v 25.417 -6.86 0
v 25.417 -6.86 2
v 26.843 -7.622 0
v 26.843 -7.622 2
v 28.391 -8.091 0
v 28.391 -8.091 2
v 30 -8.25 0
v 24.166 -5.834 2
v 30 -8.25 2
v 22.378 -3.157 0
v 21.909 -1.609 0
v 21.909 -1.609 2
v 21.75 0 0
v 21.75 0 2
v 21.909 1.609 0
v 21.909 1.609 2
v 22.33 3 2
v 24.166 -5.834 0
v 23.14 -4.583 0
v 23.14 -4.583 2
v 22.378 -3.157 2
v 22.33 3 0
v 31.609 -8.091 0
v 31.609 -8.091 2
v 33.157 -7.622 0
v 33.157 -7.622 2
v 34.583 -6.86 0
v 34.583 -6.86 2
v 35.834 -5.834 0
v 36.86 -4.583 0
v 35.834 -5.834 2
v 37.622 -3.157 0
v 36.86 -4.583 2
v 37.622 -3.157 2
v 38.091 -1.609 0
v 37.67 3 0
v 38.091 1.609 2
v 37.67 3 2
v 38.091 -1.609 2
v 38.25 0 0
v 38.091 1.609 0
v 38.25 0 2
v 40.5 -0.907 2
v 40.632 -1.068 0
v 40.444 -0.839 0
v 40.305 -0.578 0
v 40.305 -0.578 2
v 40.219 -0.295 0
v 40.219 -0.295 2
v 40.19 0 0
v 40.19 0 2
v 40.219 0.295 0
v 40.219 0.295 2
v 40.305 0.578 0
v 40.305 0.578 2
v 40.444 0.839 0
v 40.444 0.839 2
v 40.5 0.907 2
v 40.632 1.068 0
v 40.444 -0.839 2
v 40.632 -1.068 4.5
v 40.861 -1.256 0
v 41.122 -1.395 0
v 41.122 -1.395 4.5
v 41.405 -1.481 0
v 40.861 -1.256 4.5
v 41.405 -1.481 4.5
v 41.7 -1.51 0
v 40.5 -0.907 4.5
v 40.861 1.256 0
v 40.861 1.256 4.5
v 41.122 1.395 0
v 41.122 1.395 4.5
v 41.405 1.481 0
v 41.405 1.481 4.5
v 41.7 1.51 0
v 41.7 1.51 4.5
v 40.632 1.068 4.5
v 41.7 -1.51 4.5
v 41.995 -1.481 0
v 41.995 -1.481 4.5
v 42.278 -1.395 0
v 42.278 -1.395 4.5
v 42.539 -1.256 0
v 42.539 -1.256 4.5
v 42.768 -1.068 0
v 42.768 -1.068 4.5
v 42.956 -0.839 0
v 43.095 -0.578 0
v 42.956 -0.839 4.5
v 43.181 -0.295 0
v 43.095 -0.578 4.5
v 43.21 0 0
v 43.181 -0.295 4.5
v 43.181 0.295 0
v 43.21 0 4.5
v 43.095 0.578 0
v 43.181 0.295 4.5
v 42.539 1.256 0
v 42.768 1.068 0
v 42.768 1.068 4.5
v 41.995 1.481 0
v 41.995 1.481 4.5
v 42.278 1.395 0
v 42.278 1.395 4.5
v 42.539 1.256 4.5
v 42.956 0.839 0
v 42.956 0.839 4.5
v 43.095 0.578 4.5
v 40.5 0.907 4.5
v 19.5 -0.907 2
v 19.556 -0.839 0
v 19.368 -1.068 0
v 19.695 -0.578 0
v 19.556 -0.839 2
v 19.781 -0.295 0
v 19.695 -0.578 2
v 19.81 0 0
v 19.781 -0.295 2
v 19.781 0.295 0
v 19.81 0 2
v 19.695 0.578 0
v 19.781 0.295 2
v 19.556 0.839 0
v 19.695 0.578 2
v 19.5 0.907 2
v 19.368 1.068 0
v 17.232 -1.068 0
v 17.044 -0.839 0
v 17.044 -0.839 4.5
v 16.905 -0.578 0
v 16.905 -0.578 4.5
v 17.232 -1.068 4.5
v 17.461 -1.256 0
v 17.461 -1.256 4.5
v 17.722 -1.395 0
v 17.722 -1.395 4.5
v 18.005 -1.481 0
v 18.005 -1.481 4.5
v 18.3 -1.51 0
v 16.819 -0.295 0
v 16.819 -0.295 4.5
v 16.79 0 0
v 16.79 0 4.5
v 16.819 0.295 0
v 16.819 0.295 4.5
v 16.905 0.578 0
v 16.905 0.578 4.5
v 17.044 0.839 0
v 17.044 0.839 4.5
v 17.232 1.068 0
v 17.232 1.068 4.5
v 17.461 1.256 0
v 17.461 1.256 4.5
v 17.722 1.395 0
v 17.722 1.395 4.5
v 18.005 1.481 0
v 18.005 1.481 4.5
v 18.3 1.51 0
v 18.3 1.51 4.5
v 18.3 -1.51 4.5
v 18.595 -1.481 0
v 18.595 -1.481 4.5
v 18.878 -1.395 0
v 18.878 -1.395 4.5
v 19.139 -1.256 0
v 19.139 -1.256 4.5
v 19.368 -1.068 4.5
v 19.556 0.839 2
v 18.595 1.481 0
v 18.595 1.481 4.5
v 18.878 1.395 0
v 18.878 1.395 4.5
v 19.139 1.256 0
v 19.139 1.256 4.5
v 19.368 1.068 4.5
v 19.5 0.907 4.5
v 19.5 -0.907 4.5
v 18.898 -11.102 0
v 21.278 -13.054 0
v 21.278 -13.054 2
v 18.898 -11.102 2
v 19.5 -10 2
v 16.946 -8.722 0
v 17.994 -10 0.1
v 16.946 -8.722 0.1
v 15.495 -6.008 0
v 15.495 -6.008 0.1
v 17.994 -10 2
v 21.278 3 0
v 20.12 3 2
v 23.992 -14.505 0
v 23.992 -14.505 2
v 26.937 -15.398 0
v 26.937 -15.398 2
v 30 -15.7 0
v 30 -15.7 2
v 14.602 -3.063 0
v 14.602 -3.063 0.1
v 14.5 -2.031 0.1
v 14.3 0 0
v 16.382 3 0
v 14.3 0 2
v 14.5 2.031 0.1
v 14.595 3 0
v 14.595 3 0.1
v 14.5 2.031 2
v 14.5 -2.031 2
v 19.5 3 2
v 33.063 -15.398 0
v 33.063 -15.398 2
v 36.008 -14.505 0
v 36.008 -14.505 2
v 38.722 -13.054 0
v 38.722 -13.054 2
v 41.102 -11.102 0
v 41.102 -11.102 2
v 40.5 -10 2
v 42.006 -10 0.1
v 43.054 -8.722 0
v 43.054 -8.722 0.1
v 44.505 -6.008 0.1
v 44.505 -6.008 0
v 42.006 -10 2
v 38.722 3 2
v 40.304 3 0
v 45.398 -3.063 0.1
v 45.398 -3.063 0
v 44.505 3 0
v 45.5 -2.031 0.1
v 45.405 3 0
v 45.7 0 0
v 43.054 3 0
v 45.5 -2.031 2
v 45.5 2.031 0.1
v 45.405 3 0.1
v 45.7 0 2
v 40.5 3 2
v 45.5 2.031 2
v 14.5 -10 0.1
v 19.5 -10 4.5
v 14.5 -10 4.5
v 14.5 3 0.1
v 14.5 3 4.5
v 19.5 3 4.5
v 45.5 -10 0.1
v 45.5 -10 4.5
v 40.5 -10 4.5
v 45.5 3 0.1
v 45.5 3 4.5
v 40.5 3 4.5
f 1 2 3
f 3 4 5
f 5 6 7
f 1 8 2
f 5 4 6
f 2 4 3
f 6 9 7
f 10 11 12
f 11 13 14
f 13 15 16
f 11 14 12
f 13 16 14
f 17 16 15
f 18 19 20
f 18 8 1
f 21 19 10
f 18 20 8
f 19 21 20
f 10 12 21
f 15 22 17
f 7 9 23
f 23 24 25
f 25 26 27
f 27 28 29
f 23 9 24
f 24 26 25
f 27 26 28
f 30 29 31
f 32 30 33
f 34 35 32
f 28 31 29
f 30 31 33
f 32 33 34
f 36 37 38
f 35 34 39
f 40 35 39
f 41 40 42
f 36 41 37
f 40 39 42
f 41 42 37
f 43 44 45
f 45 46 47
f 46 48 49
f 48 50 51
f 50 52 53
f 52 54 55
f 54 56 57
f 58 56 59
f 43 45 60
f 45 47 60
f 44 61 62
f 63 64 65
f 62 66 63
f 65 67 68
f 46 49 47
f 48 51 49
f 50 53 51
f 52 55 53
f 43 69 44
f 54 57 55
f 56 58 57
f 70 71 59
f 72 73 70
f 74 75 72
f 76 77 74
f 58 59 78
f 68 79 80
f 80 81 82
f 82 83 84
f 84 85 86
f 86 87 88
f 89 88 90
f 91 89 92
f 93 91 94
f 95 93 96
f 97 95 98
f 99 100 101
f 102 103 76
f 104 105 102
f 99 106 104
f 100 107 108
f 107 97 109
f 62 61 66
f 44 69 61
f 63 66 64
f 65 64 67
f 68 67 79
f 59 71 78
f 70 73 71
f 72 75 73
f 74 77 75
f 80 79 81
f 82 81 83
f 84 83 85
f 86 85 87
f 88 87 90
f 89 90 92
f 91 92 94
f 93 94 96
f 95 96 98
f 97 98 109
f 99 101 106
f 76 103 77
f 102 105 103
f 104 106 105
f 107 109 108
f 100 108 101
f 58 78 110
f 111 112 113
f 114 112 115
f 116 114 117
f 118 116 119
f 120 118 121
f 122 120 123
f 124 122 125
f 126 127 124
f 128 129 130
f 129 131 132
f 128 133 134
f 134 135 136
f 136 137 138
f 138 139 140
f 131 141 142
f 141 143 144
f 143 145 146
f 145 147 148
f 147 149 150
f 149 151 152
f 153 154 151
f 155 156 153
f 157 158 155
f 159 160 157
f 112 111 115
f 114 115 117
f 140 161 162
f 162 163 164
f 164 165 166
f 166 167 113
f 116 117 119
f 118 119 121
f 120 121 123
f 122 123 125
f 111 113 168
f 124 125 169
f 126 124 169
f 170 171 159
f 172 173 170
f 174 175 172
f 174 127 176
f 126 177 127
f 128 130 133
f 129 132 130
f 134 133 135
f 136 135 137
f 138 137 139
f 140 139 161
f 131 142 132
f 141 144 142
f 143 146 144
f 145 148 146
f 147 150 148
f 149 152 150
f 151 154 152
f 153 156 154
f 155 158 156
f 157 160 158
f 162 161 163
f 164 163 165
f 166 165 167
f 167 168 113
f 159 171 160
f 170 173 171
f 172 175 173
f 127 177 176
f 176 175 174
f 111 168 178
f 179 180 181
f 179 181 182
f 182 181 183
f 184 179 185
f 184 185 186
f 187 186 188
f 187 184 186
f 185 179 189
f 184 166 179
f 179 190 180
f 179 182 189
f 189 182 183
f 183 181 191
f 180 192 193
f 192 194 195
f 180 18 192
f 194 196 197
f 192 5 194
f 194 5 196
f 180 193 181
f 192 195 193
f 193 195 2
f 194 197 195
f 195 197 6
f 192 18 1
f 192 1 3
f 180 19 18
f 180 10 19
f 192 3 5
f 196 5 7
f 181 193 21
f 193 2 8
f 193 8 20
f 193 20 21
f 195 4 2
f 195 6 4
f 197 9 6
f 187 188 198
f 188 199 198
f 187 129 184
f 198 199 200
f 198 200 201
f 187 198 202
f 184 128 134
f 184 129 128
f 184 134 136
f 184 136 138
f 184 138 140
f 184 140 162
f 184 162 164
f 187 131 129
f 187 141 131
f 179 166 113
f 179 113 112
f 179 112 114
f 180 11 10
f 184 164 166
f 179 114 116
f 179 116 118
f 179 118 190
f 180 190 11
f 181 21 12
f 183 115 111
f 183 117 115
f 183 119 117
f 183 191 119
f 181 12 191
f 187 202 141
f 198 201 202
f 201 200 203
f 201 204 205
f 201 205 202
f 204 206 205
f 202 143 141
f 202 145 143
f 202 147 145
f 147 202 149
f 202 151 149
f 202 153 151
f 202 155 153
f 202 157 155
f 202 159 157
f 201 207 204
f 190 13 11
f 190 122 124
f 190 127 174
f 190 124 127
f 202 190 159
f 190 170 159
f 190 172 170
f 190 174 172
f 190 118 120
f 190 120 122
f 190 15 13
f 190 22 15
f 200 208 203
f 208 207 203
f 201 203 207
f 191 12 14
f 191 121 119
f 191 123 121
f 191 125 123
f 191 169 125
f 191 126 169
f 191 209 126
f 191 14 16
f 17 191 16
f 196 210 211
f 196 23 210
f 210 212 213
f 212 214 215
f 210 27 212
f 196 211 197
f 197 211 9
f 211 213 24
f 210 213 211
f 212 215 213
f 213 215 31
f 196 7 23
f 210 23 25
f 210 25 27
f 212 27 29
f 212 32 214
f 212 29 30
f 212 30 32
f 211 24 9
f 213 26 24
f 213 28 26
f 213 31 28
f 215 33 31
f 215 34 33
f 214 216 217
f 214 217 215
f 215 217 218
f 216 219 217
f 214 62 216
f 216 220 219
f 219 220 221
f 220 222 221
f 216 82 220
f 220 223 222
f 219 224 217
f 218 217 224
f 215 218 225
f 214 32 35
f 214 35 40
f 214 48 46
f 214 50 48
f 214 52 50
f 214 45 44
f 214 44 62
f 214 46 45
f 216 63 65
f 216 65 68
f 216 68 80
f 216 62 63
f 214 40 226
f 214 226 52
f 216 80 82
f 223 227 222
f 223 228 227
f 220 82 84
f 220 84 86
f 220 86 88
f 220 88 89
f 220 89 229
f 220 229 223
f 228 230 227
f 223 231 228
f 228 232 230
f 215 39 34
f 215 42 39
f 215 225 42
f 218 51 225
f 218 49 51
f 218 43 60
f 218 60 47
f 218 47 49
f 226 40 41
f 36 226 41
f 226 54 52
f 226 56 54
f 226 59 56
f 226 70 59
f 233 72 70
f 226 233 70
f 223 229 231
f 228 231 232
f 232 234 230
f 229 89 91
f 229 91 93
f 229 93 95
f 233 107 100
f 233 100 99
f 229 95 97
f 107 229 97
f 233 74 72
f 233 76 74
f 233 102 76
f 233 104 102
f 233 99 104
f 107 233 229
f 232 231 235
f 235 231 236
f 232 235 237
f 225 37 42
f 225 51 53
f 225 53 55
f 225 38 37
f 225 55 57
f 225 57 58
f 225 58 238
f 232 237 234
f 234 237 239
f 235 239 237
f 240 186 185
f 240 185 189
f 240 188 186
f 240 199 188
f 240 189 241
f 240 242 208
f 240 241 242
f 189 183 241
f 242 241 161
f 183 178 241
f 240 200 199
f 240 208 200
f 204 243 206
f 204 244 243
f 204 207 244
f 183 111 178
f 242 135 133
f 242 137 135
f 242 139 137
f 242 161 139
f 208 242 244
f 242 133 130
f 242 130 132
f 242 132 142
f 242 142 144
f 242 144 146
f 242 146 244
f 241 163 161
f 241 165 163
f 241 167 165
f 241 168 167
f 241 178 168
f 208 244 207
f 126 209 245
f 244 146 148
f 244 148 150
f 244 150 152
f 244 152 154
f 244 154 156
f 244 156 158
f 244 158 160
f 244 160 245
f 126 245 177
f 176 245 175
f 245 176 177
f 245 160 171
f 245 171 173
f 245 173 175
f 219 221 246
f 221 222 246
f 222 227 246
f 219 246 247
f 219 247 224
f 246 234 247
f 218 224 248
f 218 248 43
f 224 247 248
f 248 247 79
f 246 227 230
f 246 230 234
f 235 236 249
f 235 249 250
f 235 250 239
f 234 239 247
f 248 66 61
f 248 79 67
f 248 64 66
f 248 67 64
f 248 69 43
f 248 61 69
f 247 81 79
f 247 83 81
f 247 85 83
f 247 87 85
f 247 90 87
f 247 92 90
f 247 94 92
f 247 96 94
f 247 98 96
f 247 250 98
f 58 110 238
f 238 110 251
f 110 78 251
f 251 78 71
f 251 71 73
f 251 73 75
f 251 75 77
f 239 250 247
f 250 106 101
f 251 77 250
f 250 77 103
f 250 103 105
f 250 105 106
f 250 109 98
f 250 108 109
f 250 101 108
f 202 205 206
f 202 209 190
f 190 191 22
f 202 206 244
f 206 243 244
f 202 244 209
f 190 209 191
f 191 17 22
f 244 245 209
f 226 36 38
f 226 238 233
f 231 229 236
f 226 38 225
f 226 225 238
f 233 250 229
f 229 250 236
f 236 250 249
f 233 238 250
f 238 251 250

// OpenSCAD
// file: mixin.scad
board_length = 100;
board_width = 60;
regulator_length = 25;
regulator_width = 30;
board_leg_height = 16;
wall = 2;

enclosure_width = board_width + 0.5;
enclosure_length = 162;
enclosure_leg_height = 18 + wall;
enclosure_height = enclosure_leg_height;

tube_diameter = 16.4;
socket_diameter = 25;
lid_height = 3;
m3 = 3.12;

regulator_leg_height = 3;

module rounded_box(size = [10, 10, 5], r = 3) {
  translate([size[0] / 2, size[1] / 2, 0]) {
    linear_extrude(height=size[2]) {
      minkowski() {
        square([size[0] - 2 * r, size[1] - 2 * r], center=true);
        circle(r=r);
      }
    }
  }
}
// main file
include <mixin.scad>

$fn = 64;

module tube() {
  difference() {
    union() {
    translate([board_width / 2, 0, 0]) color("#d6a731")
        cylinder(h=2, d=tube_diameter + 15, $fn=32);

  translate([(enclosure_width + wall * 2) / 2 - tube_diameter / 2 - wall*3 - 3.55, -10, 0.1]) cube([5, enclosure_length, 4.4]);
  translate([(enclosure_width - wall / 2) / 2 + tube_diameter / 2 + 0.55+wall, -10, 0.1]) cube([5, enclosure_length, 4.4]);
        }

    translate([0,3,-0.1]) cube(200);

    union() {
      translate([board_width / 2, 0, -1]) color("#d6a731")
        cylinder(h=45, d=tube_diameter+0.1, $fn=32);

      translate([board_width / 2 + 11.7, 0, -1]) color("#d6a731")
          cylinder(h=45, d=m3-0.1, $fn=32);

      translate([board_width / 2 - 11.7, 0, -1]) color("#d6a731")
          cylinder(h=45, d=m3-0.1, $fn=32);
    }
  }
}

tube();
